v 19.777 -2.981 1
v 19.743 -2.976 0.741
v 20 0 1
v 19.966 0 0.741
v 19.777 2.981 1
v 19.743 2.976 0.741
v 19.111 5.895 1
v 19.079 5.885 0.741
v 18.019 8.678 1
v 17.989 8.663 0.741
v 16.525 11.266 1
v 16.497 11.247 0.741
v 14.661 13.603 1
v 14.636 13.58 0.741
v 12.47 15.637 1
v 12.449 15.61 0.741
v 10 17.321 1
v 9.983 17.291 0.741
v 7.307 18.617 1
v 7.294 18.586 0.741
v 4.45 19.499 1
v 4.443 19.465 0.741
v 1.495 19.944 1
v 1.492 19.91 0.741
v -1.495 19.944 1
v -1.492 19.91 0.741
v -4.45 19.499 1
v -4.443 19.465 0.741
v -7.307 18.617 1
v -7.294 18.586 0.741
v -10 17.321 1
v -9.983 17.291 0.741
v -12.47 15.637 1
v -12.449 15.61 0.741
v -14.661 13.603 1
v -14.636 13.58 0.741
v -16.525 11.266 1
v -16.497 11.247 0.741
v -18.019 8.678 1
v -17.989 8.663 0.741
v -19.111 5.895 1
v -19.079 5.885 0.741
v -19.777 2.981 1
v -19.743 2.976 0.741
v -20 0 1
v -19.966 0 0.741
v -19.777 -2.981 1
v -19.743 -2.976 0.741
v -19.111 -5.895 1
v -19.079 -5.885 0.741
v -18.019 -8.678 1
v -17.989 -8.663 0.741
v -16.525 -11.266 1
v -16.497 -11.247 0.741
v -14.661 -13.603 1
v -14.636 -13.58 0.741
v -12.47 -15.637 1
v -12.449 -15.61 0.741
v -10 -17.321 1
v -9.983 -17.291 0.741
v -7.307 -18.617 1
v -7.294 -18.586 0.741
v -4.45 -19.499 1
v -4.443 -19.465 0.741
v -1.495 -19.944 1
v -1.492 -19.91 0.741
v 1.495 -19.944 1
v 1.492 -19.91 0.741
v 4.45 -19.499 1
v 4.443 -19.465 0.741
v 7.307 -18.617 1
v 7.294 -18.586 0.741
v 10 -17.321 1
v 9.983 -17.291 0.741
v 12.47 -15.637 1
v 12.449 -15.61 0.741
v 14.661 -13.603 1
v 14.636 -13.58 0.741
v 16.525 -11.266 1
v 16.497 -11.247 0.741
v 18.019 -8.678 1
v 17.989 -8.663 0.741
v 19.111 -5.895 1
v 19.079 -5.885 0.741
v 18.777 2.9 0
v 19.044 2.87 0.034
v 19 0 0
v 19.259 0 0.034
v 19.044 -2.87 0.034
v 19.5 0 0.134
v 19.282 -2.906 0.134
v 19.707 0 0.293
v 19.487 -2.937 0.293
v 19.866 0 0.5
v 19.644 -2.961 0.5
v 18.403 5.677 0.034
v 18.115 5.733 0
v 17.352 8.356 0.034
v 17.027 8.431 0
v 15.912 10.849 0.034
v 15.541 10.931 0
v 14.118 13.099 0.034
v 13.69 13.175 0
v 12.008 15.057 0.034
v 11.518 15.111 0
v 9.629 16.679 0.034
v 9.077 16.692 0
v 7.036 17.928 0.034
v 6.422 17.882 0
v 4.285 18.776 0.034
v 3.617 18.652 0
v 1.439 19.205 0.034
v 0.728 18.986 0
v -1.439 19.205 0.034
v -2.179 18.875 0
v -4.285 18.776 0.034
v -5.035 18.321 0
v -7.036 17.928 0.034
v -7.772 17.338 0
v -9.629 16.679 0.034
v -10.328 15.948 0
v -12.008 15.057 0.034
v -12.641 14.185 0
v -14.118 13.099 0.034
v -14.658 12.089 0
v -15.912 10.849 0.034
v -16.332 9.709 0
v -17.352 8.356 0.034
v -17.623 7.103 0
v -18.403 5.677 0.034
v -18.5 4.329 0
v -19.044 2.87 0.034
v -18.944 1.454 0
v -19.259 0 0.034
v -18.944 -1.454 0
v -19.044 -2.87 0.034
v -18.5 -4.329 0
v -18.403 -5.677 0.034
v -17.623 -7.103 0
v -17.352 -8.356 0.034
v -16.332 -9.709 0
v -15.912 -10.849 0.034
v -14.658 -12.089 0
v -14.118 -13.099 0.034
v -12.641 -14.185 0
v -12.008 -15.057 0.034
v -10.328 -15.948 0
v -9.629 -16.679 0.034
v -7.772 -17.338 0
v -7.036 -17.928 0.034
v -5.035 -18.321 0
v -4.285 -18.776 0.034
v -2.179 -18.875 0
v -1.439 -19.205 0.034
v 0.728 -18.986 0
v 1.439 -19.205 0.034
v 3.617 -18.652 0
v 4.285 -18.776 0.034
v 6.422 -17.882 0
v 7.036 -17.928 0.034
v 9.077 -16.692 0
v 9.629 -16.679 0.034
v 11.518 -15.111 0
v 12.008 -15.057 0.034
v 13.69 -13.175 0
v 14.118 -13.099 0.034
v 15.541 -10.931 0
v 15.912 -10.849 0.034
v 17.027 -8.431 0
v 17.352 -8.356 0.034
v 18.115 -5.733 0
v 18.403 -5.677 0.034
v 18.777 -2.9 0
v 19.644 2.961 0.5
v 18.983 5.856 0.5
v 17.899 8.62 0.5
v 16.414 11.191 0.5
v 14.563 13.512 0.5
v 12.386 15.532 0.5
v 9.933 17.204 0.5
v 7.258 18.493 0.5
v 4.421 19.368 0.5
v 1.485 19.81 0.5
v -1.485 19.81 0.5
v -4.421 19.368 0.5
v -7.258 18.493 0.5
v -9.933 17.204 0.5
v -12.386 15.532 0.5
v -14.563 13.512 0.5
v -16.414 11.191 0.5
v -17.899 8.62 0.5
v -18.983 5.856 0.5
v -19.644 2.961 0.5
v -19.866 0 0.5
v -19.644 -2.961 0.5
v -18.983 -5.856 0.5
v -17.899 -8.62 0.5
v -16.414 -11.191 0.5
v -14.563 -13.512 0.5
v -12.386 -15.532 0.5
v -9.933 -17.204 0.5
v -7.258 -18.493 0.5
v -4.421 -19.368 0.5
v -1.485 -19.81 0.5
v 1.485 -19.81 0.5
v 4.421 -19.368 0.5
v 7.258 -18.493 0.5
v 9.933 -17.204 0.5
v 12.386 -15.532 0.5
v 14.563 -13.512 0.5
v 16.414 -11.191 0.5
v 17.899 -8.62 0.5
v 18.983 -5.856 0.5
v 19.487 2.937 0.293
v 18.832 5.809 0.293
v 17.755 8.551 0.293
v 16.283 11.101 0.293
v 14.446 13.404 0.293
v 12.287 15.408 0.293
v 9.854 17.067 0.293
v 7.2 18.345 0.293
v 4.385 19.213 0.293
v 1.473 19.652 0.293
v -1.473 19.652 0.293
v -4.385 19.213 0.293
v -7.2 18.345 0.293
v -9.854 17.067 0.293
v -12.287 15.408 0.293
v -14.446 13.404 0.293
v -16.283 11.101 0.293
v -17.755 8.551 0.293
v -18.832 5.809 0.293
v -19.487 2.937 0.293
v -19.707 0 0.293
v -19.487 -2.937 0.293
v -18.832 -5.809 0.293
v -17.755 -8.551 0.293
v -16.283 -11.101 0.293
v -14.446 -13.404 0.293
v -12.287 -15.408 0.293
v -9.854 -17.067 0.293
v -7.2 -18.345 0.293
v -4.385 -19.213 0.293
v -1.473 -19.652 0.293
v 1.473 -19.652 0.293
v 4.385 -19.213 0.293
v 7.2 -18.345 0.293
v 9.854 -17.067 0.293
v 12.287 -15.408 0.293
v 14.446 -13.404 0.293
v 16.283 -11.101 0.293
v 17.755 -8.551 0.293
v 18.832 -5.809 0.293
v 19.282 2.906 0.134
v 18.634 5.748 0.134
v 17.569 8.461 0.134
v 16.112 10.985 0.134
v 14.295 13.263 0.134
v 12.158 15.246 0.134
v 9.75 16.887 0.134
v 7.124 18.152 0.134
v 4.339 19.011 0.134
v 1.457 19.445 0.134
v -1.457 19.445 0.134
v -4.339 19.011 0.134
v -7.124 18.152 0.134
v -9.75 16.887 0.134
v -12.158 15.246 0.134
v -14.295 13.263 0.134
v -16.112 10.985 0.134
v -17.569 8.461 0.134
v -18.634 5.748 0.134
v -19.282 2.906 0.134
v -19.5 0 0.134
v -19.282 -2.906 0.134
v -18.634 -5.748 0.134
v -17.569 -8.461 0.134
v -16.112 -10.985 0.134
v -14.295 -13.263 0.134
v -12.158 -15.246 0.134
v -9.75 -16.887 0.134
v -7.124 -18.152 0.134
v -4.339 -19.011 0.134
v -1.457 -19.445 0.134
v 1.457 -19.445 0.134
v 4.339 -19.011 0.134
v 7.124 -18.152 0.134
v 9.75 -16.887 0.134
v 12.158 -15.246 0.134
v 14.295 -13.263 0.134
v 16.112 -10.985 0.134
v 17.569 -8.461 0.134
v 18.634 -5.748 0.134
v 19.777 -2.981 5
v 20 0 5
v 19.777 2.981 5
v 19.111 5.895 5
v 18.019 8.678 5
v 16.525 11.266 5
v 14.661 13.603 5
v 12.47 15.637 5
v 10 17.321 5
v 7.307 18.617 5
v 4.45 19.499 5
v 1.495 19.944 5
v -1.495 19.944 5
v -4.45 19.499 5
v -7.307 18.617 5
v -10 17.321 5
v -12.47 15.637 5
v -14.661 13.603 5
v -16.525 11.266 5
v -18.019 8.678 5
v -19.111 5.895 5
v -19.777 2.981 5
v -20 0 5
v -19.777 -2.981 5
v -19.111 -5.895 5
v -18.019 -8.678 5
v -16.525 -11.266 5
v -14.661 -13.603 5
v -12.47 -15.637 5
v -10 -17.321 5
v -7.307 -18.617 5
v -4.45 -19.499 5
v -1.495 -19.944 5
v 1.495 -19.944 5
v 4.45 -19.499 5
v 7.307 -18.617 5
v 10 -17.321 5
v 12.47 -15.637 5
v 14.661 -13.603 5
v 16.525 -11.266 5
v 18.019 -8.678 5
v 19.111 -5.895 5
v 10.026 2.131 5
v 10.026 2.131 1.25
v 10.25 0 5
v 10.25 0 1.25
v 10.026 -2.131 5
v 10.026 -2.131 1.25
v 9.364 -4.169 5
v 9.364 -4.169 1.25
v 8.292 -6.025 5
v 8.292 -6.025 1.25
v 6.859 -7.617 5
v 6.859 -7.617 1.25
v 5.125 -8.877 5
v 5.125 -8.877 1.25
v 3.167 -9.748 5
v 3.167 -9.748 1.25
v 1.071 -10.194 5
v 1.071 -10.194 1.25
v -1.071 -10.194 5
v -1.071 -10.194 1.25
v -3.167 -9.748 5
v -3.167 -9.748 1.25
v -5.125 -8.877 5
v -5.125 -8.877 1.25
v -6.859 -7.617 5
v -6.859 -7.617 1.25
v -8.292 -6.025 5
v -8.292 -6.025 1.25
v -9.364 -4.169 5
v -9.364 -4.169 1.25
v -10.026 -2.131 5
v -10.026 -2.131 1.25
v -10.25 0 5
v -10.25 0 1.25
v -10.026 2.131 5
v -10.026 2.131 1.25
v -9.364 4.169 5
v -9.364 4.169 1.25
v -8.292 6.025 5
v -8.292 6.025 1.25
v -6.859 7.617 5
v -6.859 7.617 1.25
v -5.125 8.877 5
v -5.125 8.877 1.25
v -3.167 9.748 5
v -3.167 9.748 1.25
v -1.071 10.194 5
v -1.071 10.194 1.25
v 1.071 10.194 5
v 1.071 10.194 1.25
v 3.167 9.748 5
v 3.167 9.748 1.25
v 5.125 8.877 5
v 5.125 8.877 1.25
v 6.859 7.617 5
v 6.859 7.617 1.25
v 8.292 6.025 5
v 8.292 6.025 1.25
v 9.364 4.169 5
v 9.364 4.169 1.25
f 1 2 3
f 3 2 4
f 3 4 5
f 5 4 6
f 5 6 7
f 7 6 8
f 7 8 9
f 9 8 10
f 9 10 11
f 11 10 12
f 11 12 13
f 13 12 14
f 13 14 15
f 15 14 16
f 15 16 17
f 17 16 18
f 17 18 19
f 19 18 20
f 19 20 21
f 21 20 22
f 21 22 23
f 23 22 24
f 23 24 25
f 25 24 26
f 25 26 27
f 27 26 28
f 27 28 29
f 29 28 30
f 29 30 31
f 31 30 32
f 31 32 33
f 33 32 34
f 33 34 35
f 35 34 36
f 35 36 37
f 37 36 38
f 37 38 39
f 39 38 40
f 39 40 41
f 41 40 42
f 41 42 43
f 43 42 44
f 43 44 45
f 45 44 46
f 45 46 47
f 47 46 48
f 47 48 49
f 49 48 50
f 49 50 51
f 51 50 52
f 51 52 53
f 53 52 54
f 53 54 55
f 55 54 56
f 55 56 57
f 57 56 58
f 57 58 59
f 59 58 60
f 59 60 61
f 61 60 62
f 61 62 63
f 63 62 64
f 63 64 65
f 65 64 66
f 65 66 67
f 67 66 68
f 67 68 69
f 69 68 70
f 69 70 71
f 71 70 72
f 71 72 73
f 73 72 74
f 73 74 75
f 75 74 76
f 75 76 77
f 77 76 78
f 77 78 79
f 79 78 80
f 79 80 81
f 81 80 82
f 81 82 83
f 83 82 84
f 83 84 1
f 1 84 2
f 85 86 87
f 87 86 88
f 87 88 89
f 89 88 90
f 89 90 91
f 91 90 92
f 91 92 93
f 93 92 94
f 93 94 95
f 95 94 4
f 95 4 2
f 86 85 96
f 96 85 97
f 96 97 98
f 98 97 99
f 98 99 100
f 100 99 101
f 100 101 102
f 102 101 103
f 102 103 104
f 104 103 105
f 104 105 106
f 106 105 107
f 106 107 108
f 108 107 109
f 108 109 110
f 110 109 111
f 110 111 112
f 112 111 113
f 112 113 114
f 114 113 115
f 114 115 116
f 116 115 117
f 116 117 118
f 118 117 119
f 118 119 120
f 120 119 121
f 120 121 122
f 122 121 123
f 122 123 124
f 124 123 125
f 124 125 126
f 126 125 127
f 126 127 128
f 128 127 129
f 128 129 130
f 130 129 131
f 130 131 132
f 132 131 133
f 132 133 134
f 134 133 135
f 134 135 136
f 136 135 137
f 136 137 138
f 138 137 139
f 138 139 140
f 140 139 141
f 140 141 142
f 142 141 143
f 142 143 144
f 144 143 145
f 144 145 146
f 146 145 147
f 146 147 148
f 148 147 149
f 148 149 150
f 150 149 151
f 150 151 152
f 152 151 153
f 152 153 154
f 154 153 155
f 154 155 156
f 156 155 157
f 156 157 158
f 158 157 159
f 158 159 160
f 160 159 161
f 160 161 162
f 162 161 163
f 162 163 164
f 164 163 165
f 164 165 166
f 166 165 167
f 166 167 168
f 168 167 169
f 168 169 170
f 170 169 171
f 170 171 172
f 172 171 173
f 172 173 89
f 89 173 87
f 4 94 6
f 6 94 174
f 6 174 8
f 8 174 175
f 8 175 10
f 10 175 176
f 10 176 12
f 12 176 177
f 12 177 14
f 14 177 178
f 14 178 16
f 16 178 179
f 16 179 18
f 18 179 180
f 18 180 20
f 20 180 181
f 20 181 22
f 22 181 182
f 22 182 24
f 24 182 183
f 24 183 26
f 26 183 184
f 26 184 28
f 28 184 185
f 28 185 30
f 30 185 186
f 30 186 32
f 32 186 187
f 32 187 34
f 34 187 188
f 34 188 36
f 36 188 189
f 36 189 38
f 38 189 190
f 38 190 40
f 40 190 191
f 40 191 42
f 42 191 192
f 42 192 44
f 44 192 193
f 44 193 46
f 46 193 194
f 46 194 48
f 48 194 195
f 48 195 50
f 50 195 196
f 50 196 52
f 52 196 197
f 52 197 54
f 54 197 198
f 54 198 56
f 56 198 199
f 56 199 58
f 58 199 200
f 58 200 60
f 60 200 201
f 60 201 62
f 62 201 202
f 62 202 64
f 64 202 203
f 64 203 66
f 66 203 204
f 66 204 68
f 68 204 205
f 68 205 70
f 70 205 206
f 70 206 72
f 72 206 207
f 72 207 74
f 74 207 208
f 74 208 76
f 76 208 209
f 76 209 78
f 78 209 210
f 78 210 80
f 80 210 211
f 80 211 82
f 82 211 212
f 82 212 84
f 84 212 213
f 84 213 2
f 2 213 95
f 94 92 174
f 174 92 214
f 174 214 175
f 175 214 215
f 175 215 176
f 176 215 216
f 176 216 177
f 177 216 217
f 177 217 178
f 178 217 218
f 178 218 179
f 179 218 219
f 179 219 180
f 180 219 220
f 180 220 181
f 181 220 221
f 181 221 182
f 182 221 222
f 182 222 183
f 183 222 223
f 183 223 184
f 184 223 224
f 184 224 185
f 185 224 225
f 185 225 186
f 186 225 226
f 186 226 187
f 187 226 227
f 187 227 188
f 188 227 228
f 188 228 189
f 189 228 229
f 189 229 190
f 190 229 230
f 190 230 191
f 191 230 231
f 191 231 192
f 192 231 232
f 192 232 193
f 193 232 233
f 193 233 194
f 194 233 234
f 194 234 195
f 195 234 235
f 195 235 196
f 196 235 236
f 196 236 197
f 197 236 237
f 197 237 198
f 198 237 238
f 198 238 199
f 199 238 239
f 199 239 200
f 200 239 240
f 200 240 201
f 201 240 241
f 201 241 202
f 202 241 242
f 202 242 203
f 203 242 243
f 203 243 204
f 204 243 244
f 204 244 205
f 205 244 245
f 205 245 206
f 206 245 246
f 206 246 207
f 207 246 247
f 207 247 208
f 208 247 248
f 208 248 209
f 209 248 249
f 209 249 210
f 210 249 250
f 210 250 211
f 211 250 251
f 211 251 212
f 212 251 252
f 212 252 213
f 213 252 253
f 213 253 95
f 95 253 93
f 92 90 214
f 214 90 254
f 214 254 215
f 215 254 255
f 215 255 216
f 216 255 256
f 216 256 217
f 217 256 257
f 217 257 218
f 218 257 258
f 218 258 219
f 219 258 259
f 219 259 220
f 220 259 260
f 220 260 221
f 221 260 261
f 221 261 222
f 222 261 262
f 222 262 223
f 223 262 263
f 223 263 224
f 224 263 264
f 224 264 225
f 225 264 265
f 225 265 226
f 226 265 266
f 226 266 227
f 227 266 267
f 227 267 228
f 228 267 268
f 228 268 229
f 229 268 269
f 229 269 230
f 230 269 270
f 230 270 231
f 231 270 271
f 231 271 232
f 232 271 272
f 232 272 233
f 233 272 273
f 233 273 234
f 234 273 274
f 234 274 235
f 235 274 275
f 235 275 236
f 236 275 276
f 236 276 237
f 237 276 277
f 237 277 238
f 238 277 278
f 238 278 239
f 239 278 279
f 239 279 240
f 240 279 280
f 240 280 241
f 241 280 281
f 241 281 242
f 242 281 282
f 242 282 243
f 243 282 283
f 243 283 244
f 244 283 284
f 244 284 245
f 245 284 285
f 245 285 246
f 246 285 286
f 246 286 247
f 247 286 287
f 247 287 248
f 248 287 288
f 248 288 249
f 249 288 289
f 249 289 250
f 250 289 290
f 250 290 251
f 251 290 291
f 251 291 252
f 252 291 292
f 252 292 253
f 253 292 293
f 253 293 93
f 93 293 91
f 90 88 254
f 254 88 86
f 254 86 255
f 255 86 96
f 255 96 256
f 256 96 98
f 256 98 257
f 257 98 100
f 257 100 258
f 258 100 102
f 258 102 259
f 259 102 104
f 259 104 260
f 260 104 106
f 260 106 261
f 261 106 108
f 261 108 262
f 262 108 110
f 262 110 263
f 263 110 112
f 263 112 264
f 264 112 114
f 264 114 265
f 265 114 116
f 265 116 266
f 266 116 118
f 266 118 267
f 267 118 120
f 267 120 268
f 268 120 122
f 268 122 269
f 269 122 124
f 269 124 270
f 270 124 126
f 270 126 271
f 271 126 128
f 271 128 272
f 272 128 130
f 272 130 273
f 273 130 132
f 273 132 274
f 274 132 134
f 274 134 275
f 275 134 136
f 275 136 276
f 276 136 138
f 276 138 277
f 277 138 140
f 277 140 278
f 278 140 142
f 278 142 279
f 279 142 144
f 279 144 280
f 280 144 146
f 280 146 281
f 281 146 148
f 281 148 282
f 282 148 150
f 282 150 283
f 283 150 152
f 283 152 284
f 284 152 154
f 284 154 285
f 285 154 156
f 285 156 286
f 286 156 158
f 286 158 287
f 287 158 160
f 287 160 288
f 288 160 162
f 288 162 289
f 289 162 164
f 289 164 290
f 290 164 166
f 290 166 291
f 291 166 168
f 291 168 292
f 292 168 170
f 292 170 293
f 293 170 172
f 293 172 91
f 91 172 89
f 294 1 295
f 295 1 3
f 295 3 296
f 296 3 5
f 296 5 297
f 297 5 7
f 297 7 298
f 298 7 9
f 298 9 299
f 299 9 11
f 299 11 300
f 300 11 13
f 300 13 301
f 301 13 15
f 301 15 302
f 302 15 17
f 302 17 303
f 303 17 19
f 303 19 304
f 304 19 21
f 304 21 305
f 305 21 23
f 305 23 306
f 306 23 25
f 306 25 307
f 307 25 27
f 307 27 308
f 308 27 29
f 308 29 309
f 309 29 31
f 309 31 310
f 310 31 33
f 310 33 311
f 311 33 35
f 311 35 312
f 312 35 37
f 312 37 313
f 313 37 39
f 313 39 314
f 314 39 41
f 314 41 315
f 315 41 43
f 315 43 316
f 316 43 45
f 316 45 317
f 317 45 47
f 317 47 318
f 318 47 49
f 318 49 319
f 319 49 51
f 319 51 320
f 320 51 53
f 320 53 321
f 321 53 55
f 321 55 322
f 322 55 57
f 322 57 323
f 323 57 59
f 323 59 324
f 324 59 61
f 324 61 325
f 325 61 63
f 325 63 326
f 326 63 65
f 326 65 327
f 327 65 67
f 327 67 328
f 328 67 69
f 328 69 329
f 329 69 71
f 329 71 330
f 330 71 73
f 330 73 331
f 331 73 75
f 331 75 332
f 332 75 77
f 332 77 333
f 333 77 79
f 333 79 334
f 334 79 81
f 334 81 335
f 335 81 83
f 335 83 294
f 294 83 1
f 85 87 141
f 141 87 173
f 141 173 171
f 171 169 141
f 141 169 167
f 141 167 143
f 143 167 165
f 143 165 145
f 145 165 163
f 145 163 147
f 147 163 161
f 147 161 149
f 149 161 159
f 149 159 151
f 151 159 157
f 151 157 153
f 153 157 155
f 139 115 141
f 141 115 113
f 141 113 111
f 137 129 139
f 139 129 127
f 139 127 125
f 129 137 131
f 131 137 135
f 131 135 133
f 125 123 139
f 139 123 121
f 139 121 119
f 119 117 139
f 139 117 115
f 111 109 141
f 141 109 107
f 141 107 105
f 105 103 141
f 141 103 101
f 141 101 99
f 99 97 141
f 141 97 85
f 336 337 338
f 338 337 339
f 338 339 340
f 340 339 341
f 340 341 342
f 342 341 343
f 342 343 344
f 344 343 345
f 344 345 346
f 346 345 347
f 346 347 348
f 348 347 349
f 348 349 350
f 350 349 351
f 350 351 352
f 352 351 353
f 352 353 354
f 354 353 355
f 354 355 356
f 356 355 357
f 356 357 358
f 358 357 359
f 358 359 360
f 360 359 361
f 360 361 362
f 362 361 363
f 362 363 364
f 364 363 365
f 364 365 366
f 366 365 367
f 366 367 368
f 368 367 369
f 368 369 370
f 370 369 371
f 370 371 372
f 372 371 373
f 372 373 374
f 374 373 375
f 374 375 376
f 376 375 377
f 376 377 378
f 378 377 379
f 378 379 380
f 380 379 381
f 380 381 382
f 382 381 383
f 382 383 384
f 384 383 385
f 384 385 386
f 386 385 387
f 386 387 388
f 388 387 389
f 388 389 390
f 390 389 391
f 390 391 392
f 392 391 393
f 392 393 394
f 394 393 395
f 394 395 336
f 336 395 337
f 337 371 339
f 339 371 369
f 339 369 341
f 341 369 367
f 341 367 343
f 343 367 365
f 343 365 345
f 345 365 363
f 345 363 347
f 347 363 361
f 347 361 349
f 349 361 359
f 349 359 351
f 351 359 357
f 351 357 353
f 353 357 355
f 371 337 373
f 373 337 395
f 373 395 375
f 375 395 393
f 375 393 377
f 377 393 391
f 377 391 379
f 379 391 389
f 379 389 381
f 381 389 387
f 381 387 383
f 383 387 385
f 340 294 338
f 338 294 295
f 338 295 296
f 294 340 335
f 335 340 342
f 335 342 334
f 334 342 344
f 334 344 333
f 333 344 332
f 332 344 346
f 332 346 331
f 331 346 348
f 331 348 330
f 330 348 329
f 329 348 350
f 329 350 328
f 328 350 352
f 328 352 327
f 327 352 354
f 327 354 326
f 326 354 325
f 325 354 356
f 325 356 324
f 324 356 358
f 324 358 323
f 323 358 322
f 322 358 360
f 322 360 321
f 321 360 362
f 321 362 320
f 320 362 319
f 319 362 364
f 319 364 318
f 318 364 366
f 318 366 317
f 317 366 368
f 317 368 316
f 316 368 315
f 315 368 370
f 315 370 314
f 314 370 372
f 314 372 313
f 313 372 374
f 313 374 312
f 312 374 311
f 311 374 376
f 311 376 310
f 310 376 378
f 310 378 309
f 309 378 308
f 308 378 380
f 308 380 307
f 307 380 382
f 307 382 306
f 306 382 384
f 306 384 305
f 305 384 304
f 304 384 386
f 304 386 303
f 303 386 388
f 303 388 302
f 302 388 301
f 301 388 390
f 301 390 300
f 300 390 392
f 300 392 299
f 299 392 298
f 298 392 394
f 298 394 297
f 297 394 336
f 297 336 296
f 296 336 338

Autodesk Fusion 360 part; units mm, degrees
cylinder "CylinderPrimitive1" add diameter 40 height 5 placed x (1, 0, 0) y (0, 1, 0) z (0, 0, 1) at (0, 0, 0)
hole "Hole1" at (0, 0, 5) direction (0, 0, -1) diameter 20.5 depth 3.75 tip angle 180
fillet "Fillet1" radius 1 1 edges at (-18.6465, 7.2323, 0)
